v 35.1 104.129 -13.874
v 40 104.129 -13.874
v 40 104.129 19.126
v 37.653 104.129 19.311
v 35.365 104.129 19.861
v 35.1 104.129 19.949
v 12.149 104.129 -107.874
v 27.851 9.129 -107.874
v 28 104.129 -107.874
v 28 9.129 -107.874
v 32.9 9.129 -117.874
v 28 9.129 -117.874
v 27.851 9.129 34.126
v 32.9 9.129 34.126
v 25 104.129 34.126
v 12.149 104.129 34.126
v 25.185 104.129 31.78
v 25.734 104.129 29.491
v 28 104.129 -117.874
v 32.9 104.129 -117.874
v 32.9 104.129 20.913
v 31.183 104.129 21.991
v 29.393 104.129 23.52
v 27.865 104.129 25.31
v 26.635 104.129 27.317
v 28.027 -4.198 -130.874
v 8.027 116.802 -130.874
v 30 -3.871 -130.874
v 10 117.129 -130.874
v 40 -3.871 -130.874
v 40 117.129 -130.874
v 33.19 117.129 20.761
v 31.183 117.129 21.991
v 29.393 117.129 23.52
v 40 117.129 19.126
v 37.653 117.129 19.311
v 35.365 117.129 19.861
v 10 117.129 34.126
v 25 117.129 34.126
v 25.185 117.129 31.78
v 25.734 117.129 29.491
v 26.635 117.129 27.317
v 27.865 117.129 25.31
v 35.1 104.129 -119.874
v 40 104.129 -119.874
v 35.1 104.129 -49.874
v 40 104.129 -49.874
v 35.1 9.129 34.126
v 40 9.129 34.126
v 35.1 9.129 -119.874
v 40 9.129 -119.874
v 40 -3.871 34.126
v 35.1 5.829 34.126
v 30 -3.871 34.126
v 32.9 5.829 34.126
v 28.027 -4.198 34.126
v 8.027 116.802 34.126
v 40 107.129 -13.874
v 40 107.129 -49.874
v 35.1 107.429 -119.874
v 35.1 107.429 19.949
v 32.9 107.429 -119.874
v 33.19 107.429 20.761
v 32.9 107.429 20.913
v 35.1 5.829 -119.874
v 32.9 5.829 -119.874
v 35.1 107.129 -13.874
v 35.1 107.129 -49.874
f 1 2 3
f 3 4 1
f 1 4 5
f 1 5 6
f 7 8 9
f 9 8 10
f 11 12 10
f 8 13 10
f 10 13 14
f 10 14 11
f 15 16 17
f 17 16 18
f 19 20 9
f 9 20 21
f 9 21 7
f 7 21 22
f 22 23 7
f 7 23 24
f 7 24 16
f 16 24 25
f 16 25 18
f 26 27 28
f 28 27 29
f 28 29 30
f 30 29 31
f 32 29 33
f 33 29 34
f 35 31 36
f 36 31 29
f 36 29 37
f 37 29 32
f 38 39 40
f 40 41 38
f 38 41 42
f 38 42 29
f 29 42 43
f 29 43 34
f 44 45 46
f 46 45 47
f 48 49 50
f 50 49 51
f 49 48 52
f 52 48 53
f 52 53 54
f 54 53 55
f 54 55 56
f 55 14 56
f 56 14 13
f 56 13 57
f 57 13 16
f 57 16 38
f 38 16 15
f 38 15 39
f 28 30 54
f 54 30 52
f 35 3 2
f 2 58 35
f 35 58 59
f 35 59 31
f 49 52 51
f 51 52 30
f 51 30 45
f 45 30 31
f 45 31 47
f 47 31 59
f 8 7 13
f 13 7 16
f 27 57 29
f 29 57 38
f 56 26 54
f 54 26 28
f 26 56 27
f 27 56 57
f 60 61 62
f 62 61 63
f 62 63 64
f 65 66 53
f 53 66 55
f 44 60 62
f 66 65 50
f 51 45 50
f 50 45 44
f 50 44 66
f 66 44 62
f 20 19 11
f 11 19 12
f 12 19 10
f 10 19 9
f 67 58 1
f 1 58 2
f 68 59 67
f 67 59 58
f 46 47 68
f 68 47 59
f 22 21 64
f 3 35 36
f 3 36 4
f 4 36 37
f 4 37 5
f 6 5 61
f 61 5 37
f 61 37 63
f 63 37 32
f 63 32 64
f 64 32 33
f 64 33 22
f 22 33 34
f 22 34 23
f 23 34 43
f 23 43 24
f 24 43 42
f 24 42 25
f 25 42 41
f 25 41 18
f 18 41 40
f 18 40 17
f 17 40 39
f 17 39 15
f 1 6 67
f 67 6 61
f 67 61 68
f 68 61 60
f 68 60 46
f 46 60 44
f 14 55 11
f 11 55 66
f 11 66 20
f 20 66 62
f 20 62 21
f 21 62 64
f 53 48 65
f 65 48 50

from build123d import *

# Parameters (mm, degrees)
BOSS_EXTRUDE3_DEPTH = 40
SKETCH4_W           = 2
SKETCH4_H           = 142
CUT_EXTRUDE1_DEPTH  = 3
SKETCH5_W           = 2
SKETCH5_H           = 98
CUT_EXTRUDE2_DEPTH  = 3
SKETCH6_W           = 2
SKETCH6_H           = 145
CUT_EXTRUDE3_DEPTH  = 3
CUT_EXTRUDE4_DEPTH  = 228
SKETCH8_W           = 165
SKETCH8_H           = 122.641754717
BOSS_EXTRUDE5_DEPTH = 2
SKETCH11_W          = 2
SKETCH11_H          = 0.3
CUT_EXTRUDE5_DEPTH  = 145
SKETCH12_W          = 2
SKETCH12_H          = 0.3
CUT_EXTRUDE6_DEPTH  = 145
SKETCH16_W          = 2
SKETCH16_H          = 101.6
CUT_EXTRUDE7_DEPTH  = 154
SKETCH17_W          = 10
SKETCH17_H          = 95
CUT_EXTRUDE9_DEPTH  = 12
SKETCH18_W          = 5
SKETCH18_H          = 5
CUT_EXTRUDE10_DEPTH = 56
SKETCH19_W          = 36
SKETCH19_H          = 3
CUT_EXTRUDE11_DEPTH = 6
CUT_EXTRUDE13_DEPTH = 27
SKETCH22_W          = 2
SKETCH22_H          = 95
CUT_EXTRUDE22_DEPTH = 5
CUT_EXTRUDE23_DEPTH = 154


with BuildPart() as part:
    # Sketch2 → Boss-Extrude3 (new body)
    with BuildSketch(Plane(origin=(0, 0, 0), x_dir=(0, 0, -1), z_dir=(1, 0, 0))):
        Polygon((-34.1264251, 9.12857495), (-34.1264251, -3.87142505), (130.8735749, -3.87142505), (130.8735749, 117.12857495), (-34.1264251, 117.12857495), (-34.1264251, 104.12857495), (107.8735749, 104.12857495), (107.8735749, 9.12857495), align=None)
    extrude(amount=BOSS_EXTRUDE3_DEPTH)

    # Sketch4 → Cut-Extrude1 (cut)
    with BuildSketch(Plane.XZ.offset(-104.12857495)):
        with Locations((34, -36.8735749)):
            Rectangle(SKETCH4_W, SKETCH4_H)
    extrude(amount=-CUT_EXTRUDE1_DEPTH, mode=Mode.SUBTRACT)

    # Sketch5 → Cut-Extrude2 (cut)
    with BuildSketch(Plane.XY.offset(-107.8735749)):
        with Locations((34, 58.12857495)):
            Rectangle(SKETCH5_W, SKETCH5_H)
    extrude(amount=-CUT_EXTRUDE2_DEPTH, mode=Mode.SUBTRACT)

    # Sketch6 → Cut-Extrude3 (cut)
    with BuildSketch(Plane(origin=(0, 9.12857495, 0), x_dir=(1, 0, 0), z_dir=(0, 1, 0))):
        with Locations((34, 38.3735749)):
            Rectangle(SKETCH6_W, SKETCH6_H)
    extrude(amount=-CUT_EXTRUDE3_DEPTH, mode=Mode.SUBTRACT)

    # Sketch7 → Cut-Extrude4 (cut)
    with BuildSketch(Plane(origin=(0, 0, -130.8735749), x_dir=(-1, 0, 0), z_dir=(0, 0, -1))):
        Polygon((0, 117.12857495), (0, -3.87142505), (-30, -3.87142505), (-10, 117.12857495), align=None)
    extrude(amount=-CUT_EXTRUDE4_DEPTH, mode=Mode.SUBTRACT)

    # Sketch8 → Boss-Extrude5 (add)
    with BuildSketch(Plane(origin=(28.579293357, 4.723850142, 0), x_dir=(0, 0, 1), z_dir=(-0.986613411390535, -0.16307659692405535, 0))):
        with Locations((-48.3735749, 52.608979576)):
            Rectangle(SKETCH8_W, SKETCH8_H)
    extrude(amount=BOSS_EXTRUDE5_DEPTH)

    # Sketch11 → Cut-Extrude5 (cut)
    with BuildSketch(Plane.XY.offset(34.1264251)):
        with Locations((34, 107.27857495)):
            Rectangle(SKETCH11_W, SKETCH11_H)
    extrude(amount=-CUT_EXTRUDE5_DEPTH, mode=Mode.SUBTRACT)

    # Sketch12 → Cut-Extrude6 (cut)
    with BuildSketch(Plane.XY.offset(34.1264251)):
        with Locations((34, 5.97857495)):
            Rectangle(SKETCH12_W, SKETCH12_H)
    extrude(amount=-CUT_EXTRUDE6_DEPTH, mode=Mode.SUBTRACT)

    # Sketch16 → Cut-Extrude7 (cut)
    with BuildSketch(Plane.XY.offset(34.1264251)):
        with Locations((34, 56.62857495)):
            Rectangle(SKETCH16_W, SKETCH16_H)
    extrude(amount=-CUT_EXTRUDE7_DEPTH, mode=Mode.SUBTRACT)

    # Sketch17 → Cut-Extrude9 (cut)
    with BuildSketch(Plane(origin=(40, 0, 0), x_dir=(0, 0, -1), z_dir=(1, 0, 0))):
        with Locations((112.8735749, 56.62857495)):
            Rectangle(SKETCH17_W, SKETCH17_H)
    extrude(amount=-CUT_EXTRUDE9_DEPTH, mode=Mode.SUBTRACT)

    # Sketch18 → Cut-Extrude10 (cut)
    with BuildSketch(Plane.XZ.offset(-104.12857495)):
        with Locations((30.5, 31.6264251)):
            Rectangle(SKETCH18_W, SKETCH18_H)
    extrude(amount=-CUT_EXTRUDE10_DEPTH, mode=Mode.SUBTRACT)

    # Sketch19 → Cut-Extrude11 (cut)
    with BuildSketch(Plane(origin=(40, 0, 0), x_dir=(0, 0, -1), z_dir=(1, 0, 0))):
        with Locations((31.8735749, 105.62857495)):
            Rectangle(SKETCH19_W, SKETCH19_H)
    extrude(amount=-CUT_EXTRUDE11_DEPTH, mode=Mode.SUBTRACT)

    # Sketch20 → Cut-Extrude13 (cut)
    with BuildSketch(Plane(origin=(0, 117.12857495, 0), x_dir=(1, 0, 0), z_dir=(0, 1, 0))):
        with BuildLine():
            Line((33, -34.1264251), (40, -34.1264251))
            Line((40, -34.1264251), (40, -19.1264251))
            ThreePointArc((40, -19.1264251), (29.393398282, -23.519823382), (25, -34.1264251))
            Line((25, -34.1264251), (28, -34.1264251))
            Line((28, -34.1264251), (28, -29.1264251))
            Line((28, -29.1264251), (33, -29.1264251))
            Line((33, -29.1264251), (33, -34.1264251))
        make_face()
    extrude(amount=-CUT_EXTRUDE13_DEPTH, mode=Mode.SUBTRACT)

    # Sketch22 → Cut-Extrude22 (cut)
    with BuildSketch(Plane(origin=(40, 0, 0), x_dir=(0, 0, -1), z_dir=(1, 0, 0))):
        with Locations((118.8735749, 56.62857495)):
            Rectangle(SKETCH22_W, SKETCH22_H)
    extrude(amount=-CUT_EXTRUDE22_DEPTH, mode=Mode.SUBTRACT)

    # Sketch23 → Cut-Extrude23 (cut)
    with BuildSketch(Plane.XY.offset(34.1264251)):
        Polygon((33, 5.82857495), (35, 5.82857495), (35.1, 5.82857495), (35.1, 107.42857495), (35, 107.42857495), (33, 107.42857495), (32.9, 107.42857495), (32.9, 5.82857495), align=None)
    extrude(amount=-CUT_EXTRUDE23_DEPTH, mode=Mode.SUBTRACT)


solid = part.part
